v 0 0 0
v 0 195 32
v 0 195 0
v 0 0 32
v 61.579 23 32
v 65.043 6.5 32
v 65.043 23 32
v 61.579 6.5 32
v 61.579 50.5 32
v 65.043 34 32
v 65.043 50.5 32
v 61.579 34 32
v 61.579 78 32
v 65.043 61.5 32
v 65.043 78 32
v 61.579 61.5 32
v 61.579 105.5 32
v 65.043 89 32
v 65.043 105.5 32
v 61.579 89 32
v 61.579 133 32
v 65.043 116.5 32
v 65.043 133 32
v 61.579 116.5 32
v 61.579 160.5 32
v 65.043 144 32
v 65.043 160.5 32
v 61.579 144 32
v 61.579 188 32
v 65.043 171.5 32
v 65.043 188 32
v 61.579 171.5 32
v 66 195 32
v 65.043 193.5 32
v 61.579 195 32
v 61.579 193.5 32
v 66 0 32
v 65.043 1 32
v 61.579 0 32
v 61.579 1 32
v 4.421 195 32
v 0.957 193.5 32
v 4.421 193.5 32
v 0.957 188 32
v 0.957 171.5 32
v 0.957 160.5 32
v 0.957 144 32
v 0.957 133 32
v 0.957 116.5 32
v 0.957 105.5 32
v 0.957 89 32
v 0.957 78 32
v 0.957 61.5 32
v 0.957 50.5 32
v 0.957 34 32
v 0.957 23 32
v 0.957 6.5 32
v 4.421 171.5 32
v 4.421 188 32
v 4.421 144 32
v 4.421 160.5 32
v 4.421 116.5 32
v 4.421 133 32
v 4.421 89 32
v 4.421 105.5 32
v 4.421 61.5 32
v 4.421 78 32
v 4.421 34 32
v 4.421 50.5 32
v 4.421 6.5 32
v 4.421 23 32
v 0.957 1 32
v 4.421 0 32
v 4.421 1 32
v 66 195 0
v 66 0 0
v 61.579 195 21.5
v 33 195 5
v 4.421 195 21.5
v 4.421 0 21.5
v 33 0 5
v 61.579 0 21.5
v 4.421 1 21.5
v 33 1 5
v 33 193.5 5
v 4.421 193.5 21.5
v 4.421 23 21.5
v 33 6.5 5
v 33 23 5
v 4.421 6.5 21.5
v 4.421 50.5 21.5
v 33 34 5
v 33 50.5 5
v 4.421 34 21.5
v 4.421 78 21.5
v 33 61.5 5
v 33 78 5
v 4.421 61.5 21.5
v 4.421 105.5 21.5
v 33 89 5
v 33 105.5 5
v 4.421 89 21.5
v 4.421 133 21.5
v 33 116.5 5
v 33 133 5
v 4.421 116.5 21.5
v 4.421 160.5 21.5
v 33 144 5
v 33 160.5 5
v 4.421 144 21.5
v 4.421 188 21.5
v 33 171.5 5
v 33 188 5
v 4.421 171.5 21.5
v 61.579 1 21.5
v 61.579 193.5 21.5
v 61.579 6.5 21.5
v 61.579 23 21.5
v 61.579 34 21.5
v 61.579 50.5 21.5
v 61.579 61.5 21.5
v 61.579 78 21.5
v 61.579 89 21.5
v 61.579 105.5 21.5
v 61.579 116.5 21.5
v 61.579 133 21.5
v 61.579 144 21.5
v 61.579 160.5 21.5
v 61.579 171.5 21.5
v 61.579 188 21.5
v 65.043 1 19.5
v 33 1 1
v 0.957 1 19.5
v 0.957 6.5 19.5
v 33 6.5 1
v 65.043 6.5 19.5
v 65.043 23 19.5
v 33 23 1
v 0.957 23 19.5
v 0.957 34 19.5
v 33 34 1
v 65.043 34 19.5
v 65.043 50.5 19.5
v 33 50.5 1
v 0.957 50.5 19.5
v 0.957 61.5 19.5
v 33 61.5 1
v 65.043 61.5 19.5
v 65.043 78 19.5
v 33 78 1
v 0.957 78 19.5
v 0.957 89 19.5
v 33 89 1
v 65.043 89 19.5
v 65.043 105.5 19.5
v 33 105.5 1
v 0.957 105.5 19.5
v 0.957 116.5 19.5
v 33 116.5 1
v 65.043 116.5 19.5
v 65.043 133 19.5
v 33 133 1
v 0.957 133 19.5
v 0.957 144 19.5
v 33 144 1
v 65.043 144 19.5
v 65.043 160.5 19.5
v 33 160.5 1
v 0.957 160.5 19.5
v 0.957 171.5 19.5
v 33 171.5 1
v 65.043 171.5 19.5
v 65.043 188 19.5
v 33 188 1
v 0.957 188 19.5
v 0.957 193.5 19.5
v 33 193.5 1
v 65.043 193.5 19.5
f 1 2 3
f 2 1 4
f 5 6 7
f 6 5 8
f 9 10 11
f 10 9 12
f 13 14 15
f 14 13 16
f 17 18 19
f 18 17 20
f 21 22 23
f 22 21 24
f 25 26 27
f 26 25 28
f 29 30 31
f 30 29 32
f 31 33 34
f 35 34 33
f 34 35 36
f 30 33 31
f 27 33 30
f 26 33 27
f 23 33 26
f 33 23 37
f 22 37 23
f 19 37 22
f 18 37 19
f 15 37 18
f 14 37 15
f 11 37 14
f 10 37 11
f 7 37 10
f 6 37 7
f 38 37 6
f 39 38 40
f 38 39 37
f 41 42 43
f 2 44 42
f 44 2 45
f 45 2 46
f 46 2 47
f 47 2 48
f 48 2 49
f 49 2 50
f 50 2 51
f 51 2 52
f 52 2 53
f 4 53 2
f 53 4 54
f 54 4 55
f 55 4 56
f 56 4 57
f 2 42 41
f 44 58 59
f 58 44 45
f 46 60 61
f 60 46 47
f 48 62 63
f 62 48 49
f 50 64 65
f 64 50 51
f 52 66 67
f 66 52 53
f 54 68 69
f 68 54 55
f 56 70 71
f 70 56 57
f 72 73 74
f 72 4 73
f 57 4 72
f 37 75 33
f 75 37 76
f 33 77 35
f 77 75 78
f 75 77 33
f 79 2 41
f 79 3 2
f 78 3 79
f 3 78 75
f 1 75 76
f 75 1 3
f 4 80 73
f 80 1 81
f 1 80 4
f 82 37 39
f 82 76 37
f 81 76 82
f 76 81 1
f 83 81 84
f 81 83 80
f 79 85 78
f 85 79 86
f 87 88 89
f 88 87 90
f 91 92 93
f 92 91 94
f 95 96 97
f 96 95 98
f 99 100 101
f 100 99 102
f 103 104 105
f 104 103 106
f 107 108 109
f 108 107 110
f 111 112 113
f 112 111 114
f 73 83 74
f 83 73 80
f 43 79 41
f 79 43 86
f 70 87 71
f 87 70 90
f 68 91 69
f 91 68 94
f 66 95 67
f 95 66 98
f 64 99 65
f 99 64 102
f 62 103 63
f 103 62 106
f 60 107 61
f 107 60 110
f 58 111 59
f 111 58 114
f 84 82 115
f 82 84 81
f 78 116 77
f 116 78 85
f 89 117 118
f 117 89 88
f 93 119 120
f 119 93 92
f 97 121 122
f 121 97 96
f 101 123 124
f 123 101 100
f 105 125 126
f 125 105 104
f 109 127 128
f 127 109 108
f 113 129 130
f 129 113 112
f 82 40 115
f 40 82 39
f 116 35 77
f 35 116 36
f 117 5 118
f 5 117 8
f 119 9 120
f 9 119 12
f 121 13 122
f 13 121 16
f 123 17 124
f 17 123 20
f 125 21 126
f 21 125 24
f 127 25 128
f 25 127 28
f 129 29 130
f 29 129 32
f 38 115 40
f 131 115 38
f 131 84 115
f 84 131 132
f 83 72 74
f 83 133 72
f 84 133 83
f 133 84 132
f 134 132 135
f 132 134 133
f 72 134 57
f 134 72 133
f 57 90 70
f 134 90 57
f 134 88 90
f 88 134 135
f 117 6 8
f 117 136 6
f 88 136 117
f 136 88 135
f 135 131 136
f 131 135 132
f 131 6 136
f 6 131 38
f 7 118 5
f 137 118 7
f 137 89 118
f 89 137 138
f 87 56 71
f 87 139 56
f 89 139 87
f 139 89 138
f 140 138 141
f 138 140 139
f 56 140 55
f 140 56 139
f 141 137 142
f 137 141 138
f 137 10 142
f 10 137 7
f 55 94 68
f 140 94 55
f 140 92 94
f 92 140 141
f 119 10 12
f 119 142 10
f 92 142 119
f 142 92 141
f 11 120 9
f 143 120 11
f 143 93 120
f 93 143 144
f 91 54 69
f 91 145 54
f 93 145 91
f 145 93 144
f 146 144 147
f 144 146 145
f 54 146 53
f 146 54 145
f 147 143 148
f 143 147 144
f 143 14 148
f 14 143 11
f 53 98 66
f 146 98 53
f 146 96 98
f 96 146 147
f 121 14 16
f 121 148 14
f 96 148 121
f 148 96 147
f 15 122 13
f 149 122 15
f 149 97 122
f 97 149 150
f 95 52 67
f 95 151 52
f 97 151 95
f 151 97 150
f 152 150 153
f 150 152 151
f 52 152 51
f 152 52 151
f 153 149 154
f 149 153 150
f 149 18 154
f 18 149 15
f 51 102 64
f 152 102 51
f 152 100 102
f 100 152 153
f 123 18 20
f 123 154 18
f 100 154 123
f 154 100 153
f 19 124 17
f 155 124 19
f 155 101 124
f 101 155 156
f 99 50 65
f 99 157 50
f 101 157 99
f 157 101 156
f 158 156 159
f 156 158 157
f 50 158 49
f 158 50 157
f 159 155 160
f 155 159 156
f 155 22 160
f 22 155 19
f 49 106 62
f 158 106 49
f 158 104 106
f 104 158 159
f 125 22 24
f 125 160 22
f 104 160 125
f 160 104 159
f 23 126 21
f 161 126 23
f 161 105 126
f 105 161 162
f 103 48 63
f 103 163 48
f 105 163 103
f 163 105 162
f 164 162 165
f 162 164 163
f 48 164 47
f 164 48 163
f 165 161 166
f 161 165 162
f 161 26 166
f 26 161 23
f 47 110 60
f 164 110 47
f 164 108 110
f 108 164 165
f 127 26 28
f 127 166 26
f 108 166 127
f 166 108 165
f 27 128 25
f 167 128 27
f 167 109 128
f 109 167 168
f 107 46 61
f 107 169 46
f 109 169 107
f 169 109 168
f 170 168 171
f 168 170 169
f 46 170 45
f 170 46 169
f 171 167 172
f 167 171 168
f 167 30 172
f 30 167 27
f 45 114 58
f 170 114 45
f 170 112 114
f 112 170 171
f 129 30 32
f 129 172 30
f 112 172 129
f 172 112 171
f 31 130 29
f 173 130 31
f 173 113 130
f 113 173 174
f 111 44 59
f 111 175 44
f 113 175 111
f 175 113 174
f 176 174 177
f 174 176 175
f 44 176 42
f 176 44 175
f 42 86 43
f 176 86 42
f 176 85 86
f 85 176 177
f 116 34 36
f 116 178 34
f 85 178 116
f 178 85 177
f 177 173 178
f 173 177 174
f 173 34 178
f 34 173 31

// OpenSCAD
$fn=200;
THICK = 1;

TILE_L = 22;
TILE_COUNT = 16;

BOX_W = 64;
BOX_L = 193;
BOX_H = 32;

difference() {
    cube(size = [
        BOX_W + (THICK * 2),
        BOX_L + (THICK * 2), 
        BOX_H]);

    translate([33, -5, 38])
        rotate([0, 90, 90]) 
            cylinder(h = 300, r = 33, $fn=6);

    tile_slot(1);
    tile_slot(1 + TILE_L);

    tile_slot(6.5 + TILE_L);
    tile_slot(6.5 + (TILE_L * 2));

    tile_slot(12 + (TILE_L * 2));
    tile_slot(12 + (TILE_L * 3));

    tile_slot(17.5 + (TILE_L * 3));
    tile_slot(17.5 + (TILE_L * 4));

    tile_slot(23 + (TILE_L * 4));
    tile_slot(23 + (TILE_L * 5));

    tile_slot(28.5 + (TILE_L * 5));
    tile_slot(28.5 + (TILE_L * 6));

    tile_slot(34 + (TILE_L * 6));
    tile_slot(34 + (TILE_L * 7));
}

module tile_slot(y) {
    translate([33, y, 38])
        rotate([0, 90, 90]) 
            cylinder(h = 5.5, r = 37, $fn=6);
}
